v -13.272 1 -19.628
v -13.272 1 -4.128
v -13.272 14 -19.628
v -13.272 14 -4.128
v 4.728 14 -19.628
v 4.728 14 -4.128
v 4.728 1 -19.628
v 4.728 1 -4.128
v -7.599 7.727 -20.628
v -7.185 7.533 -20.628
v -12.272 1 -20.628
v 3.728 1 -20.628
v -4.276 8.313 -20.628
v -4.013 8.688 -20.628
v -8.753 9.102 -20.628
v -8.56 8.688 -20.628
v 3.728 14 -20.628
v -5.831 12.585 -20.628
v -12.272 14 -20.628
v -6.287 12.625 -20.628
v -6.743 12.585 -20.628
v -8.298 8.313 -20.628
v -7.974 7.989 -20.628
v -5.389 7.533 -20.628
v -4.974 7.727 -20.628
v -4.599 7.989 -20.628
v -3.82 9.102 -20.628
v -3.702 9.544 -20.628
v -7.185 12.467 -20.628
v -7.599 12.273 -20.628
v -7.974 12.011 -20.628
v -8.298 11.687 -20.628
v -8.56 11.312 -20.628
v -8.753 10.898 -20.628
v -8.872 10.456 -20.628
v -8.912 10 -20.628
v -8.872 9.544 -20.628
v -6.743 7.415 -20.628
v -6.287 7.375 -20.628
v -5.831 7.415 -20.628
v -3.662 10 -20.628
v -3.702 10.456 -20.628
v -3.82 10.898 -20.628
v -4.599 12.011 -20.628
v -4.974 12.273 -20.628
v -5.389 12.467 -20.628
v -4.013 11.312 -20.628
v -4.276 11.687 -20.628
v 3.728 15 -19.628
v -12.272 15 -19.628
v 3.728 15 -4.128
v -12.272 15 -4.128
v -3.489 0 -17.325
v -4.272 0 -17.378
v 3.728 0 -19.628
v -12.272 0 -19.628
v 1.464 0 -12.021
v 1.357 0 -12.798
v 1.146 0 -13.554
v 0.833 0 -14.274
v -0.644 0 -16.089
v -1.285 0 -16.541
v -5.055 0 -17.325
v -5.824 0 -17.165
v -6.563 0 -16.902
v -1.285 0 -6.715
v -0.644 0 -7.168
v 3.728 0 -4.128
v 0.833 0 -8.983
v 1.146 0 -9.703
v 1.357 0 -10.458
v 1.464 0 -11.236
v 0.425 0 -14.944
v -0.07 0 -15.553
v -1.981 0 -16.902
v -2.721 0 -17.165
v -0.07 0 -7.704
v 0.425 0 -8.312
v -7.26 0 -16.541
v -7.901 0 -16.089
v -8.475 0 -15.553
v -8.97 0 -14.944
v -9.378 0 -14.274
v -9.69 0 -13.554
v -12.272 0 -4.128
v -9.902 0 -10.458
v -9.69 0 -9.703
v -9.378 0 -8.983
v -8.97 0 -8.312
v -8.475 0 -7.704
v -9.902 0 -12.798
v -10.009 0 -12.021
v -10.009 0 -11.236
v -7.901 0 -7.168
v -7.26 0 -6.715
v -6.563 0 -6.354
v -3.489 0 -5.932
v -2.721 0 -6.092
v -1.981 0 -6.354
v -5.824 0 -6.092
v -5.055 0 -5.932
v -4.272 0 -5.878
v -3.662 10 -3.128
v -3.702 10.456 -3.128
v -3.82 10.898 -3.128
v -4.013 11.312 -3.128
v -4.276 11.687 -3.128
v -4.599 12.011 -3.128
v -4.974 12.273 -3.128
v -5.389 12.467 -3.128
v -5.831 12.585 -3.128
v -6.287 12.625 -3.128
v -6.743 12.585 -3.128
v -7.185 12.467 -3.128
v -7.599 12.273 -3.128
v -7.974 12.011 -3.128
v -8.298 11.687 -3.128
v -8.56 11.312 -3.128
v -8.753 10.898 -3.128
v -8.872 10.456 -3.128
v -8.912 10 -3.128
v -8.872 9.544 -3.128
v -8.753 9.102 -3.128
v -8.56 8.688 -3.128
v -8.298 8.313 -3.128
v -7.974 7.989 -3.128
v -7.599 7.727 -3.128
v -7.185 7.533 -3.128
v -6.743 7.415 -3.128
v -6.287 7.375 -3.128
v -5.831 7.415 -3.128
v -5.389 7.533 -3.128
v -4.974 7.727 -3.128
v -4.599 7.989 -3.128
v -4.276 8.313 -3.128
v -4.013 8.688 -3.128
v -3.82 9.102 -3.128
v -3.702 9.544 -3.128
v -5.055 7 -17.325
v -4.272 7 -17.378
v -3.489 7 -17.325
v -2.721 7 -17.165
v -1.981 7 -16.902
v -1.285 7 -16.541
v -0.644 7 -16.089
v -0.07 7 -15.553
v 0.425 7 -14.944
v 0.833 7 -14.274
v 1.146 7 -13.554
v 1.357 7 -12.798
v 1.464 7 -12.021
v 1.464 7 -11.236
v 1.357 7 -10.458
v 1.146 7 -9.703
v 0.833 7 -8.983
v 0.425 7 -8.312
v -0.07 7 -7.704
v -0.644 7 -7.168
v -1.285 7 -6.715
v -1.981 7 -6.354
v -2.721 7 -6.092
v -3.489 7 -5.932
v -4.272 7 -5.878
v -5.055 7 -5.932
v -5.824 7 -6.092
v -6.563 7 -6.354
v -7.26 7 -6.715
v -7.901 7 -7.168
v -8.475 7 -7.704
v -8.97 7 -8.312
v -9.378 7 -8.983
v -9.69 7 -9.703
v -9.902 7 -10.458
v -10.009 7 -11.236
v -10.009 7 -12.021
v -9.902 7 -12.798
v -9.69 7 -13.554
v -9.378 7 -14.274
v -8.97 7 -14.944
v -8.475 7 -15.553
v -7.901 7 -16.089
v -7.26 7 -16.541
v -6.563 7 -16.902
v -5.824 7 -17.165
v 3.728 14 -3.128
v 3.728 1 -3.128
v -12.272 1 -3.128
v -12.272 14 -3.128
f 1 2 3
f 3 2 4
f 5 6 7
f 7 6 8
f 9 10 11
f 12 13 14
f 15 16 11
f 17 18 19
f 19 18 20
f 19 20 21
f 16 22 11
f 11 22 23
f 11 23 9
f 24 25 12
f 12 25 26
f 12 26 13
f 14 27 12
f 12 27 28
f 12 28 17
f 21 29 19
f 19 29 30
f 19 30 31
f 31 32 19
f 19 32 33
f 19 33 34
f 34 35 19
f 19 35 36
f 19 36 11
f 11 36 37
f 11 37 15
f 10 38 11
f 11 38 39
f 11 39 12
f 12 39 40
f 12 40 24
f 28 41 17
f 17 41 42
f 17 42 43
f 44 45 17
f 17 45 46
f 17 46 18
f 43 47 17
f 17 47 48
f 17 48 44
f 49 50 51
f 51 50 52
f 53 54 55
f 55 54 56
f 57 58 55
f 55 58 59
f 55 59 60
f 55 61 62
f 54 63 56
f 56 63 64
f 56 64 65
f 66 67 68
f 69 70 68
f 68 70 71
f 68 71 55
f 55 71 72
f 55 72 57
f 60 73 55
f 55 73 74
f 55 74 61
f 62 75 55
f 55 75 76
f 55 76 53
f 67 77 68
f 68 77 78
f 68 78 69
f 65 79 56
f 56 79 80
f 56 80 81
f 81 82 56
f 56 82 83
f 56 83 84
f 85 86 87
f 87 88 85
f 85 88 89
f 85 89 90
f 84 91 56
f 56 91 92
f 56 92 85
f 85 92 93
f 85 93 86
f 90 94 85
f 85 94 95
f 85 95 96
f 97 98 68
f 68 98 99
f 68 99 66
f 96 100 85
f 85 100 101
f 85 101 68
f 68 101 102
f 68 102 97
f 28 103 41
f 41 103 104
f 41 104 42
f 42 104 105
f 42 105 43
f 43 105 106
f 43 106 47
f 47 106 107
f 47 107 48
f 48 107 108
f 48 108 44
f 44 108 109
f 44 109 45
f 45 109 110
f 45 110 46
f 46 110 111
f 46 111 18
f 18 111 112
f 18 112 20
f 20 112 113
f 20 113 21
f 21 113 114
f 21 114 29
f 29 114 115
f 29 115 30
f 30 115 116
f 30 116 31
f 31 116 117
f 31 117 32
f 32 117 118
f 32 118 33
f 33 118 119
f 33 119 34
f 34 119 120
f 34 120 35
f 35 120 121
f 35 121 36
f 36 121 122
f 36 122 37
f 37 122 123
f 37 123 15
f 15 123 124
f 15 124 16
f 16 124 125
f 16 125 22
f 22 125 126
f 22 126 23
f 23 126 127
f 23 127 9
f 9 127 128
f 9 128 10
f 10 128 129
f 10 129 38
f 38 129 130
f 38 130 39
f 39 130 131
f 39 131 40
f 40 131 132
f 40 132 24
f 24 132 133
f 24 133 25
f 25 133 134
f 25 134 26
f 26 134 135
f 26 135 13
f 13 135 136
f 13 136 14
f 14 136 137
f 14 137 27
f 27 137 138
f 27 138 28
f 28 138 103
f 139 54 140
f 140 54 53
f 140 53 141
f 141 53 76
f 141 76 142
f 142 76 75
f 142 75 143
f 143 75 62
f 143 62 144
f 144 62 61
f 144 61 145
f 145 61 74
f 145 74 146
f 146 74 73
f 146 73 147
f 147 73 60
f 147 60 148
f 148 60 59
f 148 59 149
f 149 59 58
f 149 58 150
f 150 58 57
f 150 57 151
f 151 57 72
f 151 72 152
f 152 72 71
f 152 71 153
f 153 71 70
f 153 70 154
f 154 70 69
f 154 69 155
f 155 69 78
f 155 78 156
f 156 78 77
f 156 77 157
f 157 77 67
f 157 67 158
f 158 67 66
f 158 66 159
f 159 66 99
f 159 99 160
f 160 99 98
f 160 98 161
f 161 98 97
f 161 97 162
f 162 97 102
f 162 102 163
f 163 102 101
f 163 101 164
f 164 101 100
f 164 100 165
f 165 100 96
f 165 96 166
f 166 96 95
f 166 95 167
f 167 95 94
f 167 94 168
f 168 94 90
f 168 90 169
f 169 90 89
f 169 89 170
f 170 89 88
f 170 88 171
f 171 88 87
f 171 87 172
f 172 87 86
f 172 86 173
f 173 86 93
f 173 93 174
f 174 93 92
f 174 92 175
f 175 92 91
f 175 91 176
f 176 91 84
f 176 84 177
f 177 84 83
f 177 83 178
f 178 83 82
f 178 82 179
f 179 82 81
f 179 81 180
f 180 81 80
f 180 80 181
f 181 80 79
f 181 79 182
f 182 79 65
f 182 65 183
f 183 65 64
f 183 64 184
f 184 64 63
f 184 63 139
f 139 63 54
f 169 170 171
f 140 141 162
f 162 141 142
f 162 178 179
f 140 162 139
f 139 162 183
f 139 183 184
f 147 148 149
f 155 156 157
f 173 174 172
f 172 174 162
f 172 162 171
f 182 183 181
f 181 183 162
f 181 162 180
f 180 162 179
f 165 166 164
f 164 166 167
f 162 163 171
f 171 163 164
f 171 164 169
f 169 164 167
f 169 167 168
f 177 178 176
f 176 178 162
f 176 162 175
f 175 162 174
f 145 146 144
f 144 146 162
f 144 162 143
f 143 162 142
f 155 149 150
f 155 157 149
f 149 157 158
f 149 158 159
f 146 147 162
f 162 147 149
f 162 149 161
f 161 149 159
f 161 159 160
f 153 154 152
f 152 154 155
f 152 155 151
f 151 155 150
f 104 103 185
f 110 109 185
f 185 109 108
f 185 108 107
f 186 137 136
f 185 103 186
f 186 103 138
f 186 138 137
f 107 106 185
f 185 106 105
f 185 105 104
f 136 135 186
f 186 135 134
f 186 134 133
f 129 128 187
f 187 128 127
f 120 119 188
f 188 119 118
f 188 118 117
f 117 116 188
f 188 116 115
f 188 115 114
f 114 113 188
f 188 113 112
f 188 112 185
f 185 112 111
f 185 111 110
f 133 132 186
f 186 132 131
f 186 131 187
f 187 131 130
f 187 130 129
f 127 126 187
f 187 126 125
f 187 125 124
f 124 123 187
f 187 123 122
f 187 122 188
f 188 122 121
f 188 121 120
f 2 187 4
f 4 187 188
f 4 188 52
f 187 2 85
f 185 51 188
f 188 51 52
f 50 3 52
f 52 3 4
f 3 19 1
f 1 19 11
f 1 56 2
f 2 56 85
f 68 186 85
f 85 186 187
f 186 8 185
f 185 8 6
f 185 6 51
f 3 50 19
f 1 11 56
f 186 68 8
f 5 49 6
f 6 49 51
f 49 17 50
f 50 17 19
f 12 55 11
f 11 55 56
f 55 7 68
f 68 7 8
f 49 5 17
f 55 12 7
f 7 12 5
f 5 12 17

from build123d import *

# Parameters (mm, degrees)
SKETCH1_W           = 18
SKETCH1_H           = 18
BOSS_EXTRUDE1_DEPTH = 15
SKETCH2_R           = 2.625
CUT_EXTRUDE1_DEPTH  = 19
SKETCH3_R           = 5.75
CUT_EXTRUDE2_DEPTH  = 7
SKETCH5_W           = 18
SKETCH5_H           = 15
CUT_EXTRUDE3_DEPTH  = 0.5
CHAMFER1_SIZE       = 1


with BuildPart() as part:
    # Sketch1 → Boss-Extrude1 (new body)
    with BuildSketch(Plane(origin=(0, 0, 0), x_dir=(1, 0, 0), z_dir=(0, 1, 0))):
        with Locations((-4.272296667, 11.628336988)):
            Rectangle(SKETCH1_W, SKETCH1_H)
    extrude(amount=BOSS_EXTRUDE1_DEPTH)

    # Sketch2 → Cut-Extrude1 (cut, through all)
    with BuildSketch(Plane.XY.offset(-2.628336988)):
        with Locations((-6.286796667, 10)):
            Circle(SKETCH2_R)
    extrude(amount=-CUT_EXTRUDE1_DEPTH, mode=Mode.SUBTRACT)

    # Sketch3 → Cut-Extrude2 (cut)
    with BuildSketch(Plane.XZ):
        with Locations((-4.272296667, -11.628336988)):
            Circle(SKETCH3_R)
    extrude(amount=-CUT_EXTRUDE2_DEPTH, mode=Mode.SUBTRACT)

    # Sketch5 → Cut-Extrude3 (cut)
    with BuildSketch(Plane.XY.offset(-2.628336988)):
        with Locations((-4.272296667, 7.5)):
            Rectangle(SKETCH5_W, SKETCH5_H)
    extrude(amount=-CUT_EXTRUDE3_DEPTH, mode=Mode.SUBTRACT)

    # Chamfer1
    chamfer1_edges = [part.edges().sort_by_distance(p)[0] for p in [
        (-4.272296667, 15, -20.628336988),
        (4.727703333, 0, -11.878336988),
        (4.727703333, 15, -11.878336988),
        (-4.272296667, 15, -3.128336988),
        (4.727703333, 7.5, -3.128336988),
        (-4.272296667, 0, -3.128336988),
        (-13.272296667, 7.5, -3.128336988),
        (-13.272296667, 15, -11.878336988),
        (-4.272296667, 0, -20.628336988),
        (-13.272296667, 0, -11.878336988),
        (-13.272296667, 7.5, -20.628336988),
        (4.727703333, 7.5, -20.628336988),
    ]]
    chamfer(chamfer1_edges, length=CHAMFER1_SIZE)


solid = part.part
